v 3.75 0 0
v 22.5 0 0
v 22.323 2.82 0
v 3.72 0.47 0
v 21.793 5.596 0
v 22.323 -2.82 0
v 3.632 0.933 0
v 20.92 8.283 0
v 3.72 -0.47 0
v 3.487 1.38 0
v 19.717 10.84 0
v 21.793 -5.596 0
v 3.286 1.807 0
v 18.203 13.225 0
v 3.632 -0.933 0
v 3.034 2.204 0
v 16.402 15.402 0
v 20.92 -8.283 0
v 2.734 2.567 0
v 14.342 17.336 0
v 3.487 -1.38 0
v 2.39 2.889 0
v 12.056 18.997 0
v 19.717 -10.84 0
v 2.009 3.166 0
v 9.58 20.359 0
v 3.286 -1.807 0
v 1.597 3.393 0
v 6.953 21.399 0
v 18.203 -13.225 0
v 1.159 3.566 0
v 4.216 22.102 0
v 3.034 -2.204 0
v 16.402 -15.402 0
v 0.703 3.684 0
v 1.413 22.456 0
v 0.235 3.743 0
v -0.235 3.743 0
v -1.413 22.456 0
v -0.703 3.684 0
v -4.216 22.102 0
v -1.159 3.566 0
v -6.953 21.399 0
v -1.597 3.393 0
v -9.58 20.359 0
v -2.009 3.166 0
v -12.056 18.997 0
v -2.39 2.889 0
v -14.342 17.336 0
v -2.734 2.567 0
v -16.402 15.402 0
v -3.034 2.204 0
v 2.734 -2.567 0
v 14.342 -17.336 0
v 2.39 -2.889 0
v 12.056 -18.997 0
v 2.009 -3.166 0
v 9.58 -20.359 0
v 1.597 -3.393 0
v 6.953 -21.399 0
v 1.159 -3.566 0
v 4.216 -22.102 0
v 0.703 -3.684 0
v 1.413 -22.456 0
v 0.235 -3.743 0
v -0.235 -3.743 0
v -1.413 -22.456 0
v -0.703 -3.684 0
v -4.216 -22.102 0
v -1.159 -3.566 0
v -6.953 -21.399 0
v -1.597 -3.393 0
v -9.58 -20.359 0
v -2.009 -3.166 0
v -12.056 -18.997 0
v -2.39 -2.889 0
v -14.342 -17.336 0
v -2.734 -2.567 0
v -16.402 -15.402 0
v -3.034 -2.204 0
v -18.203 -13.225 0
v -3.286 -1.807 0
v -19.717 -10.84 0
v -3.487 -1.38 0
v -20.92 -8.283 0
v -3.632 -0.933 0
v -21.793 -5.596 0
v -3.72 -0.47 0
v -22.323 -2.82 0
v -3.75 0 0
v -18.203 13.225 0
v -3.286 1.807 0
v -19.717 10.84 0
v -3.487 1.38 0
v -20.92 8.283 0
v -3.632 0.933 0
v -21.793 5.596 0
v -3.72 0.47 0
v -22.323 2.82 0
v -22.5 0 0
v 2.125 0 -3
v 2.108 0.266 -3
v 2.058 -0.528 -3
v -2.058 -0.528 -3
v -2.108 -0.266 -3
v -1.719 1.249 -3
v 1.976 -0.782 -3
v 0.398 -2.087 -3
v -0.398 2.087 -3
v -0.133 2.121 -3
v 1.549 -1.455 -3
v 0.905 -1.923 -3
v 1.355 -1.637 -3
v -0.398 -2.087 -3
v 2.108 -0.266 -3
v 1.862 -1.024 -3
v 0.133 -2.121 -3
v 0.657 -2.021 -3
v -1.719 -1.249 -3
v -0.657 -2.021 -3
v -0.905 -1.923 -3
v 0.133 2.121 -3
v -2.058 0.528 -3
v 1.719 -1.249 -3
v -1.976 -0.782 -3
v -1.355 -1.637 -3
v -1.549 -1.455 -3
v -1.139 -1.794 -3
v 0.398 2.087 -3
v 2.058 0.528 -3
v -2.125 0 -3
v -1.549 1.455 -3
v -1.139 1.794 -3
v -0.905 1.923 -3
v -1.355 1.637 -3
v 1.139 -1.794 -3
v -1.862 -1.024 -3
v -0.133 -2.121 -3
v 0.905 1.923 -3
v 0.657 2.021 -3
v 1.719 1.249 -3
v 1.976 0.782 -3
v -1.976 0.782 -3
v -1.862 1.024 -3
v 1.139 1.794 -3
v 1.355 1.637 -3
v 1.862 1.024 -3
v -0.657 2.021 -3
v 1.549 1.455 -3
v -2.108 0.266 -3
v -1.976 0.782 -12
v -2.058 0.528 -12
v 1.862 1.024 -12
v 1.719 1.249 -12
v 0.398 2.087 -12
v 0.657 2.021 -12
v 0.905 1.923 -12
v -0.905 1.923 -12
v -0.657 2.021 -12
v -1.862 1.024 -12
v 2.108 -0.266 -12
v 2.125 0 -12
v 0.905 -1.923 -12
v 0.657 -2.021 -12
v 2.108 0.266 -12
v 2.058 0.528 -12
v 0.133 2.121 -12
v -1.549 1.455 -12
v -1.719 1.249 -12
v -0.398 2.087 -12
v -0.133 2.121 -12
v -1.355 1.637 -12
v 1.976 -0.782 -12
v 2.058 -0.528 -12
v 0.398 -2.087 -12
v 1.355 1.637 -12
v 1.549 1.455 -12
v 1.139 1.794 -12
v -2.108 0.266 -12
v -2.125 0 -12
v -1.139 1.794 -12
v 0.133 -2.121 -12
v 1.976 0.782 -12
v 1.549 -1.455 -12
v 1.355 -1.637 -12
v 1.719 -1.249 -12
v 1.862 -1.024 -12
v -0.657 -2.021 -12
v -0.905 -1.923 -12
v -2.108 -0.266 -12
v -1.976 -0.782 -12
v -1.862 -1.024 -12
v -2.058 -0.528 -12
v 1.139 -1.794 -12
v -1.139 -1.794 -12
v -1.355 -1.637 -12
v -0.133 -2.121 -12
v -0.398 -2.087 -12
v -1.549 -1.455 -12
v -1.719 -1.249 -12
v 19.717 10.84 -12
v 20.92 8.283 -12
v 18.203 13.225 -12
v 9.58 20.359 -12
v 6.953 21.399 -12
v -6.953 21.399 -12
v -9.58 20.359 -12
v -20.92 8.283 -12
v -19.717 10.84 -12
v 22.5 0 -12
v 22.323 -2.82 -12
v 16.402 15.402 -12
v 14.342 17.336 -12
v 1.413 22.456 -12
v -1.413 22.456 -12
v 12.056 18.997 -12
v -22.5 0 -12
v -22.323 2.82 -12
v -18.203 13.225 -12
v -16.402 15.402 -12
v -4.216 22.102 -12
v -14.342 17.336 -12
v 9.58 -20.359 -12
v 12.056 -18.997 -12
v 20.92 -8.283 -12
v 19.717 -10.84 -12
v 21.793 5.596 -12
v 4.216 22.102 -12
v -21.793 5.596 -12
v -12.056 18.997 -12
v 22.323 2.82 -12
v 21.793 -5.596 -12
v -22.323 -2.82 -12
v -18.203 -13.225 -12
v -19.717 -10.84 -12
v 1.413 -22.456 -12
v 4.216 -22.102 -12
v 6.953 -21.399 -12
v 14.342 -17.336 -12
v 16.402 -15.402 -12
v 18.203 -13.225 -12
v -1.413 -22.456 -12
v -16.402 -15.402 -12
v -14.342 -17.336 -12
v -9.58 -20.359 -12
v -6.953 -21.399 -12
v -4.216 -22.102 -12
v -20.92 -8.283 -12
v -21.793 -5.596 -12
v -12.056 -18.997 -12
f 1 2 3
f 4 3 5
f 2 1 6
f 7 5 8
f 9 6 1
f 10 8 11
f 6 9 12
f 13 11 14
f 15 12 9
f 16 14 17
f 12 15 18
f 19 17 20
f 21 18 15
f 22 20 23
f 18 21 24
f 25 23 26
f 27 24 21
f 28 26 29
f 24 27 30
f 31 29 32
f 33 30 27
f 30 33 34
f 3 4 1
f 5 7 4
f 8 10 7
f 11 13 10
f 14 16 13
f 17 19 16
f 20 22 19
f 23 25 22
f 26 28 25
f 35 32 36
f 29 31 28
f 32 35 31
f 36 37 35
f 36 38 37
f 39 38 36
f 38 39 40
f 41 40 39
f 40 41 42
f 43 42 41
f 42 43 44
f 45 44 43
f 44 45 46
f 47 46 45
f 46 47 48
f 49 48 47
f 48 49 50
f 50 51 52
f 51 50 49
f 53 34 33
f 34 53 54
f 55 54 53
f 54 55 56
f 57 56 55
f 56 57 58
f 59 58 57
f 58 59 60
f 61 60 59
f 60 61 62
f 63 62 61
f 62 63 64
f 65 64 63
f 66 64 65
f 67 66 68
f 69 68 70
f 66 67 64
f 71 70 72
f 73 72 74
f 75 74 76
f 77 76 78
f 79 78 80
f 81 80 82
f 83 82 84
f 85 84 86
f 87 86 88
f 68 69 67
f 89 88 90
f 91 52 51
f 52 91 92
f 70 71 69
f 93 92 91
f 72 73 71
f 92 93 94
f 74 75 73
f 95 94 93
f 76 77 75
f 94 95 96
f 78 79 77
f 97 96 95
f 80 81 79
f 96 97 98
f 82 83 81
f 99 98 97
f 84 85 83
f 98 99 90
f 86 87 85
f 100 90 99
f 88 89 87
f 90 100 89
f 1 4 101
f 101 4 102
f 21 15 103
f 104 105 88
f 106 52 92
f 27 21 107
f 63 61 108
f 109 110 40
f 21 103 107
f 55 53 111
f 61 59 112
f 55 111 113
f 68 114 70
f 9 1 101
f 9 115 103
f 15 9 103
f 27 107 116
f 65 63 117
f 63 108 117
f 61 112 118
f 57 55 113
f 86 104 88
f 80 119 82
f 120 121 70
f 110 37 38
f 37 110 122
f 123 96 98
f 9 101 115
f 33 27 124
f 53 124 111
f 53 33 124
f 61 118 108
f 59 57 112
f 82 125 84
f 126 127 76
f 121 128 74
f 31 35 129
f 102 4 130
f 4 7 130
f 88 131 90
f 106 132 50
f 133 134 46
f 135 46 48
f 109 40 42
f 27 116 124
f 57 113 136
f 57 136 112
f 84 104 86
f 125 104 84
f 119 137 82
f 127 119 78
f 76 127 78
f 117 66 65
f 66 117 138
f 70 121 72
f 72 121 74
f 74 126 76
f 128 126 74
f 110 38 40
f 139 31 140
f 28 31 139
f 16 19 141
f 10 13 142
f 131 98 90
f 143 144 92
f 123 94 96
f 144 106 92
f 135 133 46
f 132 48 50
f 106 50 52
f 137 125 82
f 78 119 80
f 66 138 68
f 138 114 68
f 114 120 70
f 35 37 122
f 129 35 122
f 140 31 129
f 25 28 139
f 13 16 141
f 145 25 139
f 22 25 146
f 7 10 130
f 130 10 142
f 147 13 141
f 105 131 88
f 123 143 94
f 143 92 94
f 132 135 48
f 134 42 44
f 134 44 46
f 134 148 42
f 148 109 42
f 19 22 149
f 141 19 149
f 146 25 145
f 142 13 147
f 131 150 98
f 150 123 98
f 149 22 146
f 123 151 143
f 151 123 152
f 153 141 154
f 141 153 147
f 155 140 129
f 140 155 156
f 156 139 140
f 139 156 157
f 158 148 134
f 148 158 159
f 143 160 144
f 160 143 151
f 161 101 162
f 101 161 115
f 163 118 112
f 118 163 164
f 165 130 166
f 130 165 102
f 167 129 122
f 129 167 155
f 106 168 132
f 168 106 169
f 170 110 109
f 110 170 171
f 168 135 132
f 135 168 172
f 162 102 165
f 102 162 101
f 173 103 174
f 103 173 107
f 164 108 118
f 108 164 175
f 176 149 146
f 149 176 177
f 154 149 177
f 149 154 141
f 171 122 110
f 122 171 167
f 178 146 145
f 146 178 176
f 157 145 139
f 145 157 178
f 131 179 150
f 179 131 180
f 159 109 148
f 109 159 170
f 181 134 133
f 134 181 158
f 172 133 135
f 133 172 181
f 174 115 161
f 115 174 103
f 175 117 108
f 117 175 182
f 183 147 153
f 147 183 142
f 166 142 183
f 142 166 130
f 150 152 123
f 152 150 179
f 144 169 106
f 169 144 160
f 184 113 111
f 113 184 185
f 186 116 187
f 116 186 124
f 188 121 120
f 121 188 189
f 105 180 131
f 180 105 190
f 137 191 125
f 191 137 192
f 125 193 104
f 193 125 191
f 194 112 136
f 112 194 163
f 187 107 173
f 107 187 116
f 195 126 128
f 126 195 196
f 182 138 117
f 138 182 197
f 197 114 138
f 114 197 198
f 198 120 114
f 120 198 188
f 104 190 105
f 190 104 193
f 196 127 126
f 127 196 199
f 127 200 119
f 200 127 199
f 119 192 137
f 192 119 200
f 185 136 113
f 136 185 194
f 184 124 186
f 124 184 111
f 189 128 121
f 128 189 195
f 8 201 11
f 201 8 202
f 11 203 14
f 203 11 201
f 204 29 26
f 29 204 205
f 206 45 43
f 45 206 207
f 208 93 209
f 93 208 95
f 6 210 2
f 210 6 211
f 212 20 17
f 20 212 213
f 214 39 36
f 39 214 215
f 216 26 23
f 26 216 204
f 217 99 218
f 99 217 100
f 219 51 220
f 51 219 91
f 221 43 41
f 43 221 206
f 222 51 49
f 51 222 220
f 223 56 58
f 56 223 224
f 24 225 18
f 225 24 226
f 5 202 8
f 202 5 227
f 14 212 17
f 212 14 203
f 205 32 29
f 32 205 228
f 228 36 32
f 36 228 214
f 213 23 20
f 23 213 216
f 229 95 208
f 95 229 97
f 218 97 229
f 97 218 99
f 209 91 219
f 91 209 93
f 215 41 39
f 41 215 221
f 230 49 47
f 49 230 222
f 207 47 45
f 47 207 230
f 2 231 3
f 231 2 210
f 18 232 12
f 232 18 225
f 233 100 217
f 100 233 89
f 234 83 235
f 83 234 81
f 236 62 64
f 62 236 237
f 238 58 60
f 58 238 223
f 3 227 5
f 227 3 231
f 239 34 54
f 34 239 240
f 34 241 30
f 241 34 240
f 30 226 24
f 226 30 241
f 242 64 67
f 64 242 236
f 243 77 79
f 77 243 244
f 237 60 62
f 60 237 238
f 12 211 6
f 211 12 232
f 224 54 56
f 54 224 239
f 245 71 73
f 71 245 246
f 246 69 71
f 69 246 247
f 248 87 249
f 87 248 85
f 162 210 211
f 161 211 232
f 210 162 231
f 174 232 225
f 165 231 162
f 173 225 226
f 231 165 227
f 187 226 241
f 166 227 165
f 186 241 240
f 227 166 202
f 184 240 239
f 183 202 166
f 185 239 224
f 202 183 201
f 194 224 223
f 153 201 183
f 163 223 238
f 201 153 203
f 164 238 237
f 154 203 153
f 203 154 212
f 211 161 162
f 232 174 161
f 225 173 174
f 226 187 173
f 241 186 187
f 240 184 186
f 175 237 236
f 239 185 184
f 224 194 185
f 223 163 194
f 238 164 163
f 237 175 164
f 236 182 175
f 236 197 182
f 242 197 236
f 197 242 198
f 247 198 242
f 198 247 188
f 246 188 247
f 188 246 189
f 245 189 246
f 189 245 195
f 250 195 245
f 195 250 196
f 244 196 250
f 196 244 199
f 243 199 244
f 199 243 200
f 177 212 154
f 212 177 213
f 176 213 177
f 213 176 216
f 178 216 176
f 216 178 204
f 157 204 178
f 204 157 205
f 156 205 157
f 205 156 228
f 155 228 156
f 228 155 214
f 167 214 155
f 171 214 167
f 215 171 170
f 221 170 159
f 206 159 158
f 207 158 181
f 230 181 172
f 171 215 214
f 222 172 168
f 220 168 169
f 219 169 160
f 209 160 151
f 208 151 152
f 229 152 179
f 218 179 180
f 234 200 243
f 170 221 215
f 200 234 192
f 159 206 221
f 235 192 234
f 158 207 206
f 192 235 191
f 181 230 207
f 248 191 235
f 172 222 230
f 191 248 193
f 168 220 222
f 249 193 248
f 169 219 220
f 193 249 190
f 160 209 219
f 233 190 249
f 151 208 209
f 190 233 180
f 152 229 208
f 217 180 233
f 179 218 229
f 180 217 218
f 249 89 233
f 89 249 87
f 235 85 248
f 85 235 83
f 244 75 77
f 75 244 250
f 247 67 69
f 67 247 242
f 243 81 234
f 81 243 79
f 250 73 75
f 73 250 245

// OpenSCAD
$fn = 50;


difference() {
	union() {
		translate(v = [0, 0, -12.0000000000]) {
			cylinder(h = 12, r = 22.5000000000);
		}
	}
	union() {
		translate(v = [0, 0, 0]) {
			rotate(a = [0, 0, 0]) {
				difference() {
					union() {
						translate(v = [0, 0, -15.0000000000]) {
							cylinder(h = 15, r = 2.0000000000);
						}
						translate(v = [0, 0, -3]) {
							cylinder(h = 3, r1 = 2.1250000000, r2 = 3.7500000000);
						}
						translate(v = [0, 0, -15.0000000000]) {
							cylinder(h = 15, r = 2.1250000000);
						}
						translate(v = [0, 0, -15.0000000000]) {
							cylinder(h = 15, r = 2.0000000000);
						}
					}
					union();
				}
			}
		}
	}
}
